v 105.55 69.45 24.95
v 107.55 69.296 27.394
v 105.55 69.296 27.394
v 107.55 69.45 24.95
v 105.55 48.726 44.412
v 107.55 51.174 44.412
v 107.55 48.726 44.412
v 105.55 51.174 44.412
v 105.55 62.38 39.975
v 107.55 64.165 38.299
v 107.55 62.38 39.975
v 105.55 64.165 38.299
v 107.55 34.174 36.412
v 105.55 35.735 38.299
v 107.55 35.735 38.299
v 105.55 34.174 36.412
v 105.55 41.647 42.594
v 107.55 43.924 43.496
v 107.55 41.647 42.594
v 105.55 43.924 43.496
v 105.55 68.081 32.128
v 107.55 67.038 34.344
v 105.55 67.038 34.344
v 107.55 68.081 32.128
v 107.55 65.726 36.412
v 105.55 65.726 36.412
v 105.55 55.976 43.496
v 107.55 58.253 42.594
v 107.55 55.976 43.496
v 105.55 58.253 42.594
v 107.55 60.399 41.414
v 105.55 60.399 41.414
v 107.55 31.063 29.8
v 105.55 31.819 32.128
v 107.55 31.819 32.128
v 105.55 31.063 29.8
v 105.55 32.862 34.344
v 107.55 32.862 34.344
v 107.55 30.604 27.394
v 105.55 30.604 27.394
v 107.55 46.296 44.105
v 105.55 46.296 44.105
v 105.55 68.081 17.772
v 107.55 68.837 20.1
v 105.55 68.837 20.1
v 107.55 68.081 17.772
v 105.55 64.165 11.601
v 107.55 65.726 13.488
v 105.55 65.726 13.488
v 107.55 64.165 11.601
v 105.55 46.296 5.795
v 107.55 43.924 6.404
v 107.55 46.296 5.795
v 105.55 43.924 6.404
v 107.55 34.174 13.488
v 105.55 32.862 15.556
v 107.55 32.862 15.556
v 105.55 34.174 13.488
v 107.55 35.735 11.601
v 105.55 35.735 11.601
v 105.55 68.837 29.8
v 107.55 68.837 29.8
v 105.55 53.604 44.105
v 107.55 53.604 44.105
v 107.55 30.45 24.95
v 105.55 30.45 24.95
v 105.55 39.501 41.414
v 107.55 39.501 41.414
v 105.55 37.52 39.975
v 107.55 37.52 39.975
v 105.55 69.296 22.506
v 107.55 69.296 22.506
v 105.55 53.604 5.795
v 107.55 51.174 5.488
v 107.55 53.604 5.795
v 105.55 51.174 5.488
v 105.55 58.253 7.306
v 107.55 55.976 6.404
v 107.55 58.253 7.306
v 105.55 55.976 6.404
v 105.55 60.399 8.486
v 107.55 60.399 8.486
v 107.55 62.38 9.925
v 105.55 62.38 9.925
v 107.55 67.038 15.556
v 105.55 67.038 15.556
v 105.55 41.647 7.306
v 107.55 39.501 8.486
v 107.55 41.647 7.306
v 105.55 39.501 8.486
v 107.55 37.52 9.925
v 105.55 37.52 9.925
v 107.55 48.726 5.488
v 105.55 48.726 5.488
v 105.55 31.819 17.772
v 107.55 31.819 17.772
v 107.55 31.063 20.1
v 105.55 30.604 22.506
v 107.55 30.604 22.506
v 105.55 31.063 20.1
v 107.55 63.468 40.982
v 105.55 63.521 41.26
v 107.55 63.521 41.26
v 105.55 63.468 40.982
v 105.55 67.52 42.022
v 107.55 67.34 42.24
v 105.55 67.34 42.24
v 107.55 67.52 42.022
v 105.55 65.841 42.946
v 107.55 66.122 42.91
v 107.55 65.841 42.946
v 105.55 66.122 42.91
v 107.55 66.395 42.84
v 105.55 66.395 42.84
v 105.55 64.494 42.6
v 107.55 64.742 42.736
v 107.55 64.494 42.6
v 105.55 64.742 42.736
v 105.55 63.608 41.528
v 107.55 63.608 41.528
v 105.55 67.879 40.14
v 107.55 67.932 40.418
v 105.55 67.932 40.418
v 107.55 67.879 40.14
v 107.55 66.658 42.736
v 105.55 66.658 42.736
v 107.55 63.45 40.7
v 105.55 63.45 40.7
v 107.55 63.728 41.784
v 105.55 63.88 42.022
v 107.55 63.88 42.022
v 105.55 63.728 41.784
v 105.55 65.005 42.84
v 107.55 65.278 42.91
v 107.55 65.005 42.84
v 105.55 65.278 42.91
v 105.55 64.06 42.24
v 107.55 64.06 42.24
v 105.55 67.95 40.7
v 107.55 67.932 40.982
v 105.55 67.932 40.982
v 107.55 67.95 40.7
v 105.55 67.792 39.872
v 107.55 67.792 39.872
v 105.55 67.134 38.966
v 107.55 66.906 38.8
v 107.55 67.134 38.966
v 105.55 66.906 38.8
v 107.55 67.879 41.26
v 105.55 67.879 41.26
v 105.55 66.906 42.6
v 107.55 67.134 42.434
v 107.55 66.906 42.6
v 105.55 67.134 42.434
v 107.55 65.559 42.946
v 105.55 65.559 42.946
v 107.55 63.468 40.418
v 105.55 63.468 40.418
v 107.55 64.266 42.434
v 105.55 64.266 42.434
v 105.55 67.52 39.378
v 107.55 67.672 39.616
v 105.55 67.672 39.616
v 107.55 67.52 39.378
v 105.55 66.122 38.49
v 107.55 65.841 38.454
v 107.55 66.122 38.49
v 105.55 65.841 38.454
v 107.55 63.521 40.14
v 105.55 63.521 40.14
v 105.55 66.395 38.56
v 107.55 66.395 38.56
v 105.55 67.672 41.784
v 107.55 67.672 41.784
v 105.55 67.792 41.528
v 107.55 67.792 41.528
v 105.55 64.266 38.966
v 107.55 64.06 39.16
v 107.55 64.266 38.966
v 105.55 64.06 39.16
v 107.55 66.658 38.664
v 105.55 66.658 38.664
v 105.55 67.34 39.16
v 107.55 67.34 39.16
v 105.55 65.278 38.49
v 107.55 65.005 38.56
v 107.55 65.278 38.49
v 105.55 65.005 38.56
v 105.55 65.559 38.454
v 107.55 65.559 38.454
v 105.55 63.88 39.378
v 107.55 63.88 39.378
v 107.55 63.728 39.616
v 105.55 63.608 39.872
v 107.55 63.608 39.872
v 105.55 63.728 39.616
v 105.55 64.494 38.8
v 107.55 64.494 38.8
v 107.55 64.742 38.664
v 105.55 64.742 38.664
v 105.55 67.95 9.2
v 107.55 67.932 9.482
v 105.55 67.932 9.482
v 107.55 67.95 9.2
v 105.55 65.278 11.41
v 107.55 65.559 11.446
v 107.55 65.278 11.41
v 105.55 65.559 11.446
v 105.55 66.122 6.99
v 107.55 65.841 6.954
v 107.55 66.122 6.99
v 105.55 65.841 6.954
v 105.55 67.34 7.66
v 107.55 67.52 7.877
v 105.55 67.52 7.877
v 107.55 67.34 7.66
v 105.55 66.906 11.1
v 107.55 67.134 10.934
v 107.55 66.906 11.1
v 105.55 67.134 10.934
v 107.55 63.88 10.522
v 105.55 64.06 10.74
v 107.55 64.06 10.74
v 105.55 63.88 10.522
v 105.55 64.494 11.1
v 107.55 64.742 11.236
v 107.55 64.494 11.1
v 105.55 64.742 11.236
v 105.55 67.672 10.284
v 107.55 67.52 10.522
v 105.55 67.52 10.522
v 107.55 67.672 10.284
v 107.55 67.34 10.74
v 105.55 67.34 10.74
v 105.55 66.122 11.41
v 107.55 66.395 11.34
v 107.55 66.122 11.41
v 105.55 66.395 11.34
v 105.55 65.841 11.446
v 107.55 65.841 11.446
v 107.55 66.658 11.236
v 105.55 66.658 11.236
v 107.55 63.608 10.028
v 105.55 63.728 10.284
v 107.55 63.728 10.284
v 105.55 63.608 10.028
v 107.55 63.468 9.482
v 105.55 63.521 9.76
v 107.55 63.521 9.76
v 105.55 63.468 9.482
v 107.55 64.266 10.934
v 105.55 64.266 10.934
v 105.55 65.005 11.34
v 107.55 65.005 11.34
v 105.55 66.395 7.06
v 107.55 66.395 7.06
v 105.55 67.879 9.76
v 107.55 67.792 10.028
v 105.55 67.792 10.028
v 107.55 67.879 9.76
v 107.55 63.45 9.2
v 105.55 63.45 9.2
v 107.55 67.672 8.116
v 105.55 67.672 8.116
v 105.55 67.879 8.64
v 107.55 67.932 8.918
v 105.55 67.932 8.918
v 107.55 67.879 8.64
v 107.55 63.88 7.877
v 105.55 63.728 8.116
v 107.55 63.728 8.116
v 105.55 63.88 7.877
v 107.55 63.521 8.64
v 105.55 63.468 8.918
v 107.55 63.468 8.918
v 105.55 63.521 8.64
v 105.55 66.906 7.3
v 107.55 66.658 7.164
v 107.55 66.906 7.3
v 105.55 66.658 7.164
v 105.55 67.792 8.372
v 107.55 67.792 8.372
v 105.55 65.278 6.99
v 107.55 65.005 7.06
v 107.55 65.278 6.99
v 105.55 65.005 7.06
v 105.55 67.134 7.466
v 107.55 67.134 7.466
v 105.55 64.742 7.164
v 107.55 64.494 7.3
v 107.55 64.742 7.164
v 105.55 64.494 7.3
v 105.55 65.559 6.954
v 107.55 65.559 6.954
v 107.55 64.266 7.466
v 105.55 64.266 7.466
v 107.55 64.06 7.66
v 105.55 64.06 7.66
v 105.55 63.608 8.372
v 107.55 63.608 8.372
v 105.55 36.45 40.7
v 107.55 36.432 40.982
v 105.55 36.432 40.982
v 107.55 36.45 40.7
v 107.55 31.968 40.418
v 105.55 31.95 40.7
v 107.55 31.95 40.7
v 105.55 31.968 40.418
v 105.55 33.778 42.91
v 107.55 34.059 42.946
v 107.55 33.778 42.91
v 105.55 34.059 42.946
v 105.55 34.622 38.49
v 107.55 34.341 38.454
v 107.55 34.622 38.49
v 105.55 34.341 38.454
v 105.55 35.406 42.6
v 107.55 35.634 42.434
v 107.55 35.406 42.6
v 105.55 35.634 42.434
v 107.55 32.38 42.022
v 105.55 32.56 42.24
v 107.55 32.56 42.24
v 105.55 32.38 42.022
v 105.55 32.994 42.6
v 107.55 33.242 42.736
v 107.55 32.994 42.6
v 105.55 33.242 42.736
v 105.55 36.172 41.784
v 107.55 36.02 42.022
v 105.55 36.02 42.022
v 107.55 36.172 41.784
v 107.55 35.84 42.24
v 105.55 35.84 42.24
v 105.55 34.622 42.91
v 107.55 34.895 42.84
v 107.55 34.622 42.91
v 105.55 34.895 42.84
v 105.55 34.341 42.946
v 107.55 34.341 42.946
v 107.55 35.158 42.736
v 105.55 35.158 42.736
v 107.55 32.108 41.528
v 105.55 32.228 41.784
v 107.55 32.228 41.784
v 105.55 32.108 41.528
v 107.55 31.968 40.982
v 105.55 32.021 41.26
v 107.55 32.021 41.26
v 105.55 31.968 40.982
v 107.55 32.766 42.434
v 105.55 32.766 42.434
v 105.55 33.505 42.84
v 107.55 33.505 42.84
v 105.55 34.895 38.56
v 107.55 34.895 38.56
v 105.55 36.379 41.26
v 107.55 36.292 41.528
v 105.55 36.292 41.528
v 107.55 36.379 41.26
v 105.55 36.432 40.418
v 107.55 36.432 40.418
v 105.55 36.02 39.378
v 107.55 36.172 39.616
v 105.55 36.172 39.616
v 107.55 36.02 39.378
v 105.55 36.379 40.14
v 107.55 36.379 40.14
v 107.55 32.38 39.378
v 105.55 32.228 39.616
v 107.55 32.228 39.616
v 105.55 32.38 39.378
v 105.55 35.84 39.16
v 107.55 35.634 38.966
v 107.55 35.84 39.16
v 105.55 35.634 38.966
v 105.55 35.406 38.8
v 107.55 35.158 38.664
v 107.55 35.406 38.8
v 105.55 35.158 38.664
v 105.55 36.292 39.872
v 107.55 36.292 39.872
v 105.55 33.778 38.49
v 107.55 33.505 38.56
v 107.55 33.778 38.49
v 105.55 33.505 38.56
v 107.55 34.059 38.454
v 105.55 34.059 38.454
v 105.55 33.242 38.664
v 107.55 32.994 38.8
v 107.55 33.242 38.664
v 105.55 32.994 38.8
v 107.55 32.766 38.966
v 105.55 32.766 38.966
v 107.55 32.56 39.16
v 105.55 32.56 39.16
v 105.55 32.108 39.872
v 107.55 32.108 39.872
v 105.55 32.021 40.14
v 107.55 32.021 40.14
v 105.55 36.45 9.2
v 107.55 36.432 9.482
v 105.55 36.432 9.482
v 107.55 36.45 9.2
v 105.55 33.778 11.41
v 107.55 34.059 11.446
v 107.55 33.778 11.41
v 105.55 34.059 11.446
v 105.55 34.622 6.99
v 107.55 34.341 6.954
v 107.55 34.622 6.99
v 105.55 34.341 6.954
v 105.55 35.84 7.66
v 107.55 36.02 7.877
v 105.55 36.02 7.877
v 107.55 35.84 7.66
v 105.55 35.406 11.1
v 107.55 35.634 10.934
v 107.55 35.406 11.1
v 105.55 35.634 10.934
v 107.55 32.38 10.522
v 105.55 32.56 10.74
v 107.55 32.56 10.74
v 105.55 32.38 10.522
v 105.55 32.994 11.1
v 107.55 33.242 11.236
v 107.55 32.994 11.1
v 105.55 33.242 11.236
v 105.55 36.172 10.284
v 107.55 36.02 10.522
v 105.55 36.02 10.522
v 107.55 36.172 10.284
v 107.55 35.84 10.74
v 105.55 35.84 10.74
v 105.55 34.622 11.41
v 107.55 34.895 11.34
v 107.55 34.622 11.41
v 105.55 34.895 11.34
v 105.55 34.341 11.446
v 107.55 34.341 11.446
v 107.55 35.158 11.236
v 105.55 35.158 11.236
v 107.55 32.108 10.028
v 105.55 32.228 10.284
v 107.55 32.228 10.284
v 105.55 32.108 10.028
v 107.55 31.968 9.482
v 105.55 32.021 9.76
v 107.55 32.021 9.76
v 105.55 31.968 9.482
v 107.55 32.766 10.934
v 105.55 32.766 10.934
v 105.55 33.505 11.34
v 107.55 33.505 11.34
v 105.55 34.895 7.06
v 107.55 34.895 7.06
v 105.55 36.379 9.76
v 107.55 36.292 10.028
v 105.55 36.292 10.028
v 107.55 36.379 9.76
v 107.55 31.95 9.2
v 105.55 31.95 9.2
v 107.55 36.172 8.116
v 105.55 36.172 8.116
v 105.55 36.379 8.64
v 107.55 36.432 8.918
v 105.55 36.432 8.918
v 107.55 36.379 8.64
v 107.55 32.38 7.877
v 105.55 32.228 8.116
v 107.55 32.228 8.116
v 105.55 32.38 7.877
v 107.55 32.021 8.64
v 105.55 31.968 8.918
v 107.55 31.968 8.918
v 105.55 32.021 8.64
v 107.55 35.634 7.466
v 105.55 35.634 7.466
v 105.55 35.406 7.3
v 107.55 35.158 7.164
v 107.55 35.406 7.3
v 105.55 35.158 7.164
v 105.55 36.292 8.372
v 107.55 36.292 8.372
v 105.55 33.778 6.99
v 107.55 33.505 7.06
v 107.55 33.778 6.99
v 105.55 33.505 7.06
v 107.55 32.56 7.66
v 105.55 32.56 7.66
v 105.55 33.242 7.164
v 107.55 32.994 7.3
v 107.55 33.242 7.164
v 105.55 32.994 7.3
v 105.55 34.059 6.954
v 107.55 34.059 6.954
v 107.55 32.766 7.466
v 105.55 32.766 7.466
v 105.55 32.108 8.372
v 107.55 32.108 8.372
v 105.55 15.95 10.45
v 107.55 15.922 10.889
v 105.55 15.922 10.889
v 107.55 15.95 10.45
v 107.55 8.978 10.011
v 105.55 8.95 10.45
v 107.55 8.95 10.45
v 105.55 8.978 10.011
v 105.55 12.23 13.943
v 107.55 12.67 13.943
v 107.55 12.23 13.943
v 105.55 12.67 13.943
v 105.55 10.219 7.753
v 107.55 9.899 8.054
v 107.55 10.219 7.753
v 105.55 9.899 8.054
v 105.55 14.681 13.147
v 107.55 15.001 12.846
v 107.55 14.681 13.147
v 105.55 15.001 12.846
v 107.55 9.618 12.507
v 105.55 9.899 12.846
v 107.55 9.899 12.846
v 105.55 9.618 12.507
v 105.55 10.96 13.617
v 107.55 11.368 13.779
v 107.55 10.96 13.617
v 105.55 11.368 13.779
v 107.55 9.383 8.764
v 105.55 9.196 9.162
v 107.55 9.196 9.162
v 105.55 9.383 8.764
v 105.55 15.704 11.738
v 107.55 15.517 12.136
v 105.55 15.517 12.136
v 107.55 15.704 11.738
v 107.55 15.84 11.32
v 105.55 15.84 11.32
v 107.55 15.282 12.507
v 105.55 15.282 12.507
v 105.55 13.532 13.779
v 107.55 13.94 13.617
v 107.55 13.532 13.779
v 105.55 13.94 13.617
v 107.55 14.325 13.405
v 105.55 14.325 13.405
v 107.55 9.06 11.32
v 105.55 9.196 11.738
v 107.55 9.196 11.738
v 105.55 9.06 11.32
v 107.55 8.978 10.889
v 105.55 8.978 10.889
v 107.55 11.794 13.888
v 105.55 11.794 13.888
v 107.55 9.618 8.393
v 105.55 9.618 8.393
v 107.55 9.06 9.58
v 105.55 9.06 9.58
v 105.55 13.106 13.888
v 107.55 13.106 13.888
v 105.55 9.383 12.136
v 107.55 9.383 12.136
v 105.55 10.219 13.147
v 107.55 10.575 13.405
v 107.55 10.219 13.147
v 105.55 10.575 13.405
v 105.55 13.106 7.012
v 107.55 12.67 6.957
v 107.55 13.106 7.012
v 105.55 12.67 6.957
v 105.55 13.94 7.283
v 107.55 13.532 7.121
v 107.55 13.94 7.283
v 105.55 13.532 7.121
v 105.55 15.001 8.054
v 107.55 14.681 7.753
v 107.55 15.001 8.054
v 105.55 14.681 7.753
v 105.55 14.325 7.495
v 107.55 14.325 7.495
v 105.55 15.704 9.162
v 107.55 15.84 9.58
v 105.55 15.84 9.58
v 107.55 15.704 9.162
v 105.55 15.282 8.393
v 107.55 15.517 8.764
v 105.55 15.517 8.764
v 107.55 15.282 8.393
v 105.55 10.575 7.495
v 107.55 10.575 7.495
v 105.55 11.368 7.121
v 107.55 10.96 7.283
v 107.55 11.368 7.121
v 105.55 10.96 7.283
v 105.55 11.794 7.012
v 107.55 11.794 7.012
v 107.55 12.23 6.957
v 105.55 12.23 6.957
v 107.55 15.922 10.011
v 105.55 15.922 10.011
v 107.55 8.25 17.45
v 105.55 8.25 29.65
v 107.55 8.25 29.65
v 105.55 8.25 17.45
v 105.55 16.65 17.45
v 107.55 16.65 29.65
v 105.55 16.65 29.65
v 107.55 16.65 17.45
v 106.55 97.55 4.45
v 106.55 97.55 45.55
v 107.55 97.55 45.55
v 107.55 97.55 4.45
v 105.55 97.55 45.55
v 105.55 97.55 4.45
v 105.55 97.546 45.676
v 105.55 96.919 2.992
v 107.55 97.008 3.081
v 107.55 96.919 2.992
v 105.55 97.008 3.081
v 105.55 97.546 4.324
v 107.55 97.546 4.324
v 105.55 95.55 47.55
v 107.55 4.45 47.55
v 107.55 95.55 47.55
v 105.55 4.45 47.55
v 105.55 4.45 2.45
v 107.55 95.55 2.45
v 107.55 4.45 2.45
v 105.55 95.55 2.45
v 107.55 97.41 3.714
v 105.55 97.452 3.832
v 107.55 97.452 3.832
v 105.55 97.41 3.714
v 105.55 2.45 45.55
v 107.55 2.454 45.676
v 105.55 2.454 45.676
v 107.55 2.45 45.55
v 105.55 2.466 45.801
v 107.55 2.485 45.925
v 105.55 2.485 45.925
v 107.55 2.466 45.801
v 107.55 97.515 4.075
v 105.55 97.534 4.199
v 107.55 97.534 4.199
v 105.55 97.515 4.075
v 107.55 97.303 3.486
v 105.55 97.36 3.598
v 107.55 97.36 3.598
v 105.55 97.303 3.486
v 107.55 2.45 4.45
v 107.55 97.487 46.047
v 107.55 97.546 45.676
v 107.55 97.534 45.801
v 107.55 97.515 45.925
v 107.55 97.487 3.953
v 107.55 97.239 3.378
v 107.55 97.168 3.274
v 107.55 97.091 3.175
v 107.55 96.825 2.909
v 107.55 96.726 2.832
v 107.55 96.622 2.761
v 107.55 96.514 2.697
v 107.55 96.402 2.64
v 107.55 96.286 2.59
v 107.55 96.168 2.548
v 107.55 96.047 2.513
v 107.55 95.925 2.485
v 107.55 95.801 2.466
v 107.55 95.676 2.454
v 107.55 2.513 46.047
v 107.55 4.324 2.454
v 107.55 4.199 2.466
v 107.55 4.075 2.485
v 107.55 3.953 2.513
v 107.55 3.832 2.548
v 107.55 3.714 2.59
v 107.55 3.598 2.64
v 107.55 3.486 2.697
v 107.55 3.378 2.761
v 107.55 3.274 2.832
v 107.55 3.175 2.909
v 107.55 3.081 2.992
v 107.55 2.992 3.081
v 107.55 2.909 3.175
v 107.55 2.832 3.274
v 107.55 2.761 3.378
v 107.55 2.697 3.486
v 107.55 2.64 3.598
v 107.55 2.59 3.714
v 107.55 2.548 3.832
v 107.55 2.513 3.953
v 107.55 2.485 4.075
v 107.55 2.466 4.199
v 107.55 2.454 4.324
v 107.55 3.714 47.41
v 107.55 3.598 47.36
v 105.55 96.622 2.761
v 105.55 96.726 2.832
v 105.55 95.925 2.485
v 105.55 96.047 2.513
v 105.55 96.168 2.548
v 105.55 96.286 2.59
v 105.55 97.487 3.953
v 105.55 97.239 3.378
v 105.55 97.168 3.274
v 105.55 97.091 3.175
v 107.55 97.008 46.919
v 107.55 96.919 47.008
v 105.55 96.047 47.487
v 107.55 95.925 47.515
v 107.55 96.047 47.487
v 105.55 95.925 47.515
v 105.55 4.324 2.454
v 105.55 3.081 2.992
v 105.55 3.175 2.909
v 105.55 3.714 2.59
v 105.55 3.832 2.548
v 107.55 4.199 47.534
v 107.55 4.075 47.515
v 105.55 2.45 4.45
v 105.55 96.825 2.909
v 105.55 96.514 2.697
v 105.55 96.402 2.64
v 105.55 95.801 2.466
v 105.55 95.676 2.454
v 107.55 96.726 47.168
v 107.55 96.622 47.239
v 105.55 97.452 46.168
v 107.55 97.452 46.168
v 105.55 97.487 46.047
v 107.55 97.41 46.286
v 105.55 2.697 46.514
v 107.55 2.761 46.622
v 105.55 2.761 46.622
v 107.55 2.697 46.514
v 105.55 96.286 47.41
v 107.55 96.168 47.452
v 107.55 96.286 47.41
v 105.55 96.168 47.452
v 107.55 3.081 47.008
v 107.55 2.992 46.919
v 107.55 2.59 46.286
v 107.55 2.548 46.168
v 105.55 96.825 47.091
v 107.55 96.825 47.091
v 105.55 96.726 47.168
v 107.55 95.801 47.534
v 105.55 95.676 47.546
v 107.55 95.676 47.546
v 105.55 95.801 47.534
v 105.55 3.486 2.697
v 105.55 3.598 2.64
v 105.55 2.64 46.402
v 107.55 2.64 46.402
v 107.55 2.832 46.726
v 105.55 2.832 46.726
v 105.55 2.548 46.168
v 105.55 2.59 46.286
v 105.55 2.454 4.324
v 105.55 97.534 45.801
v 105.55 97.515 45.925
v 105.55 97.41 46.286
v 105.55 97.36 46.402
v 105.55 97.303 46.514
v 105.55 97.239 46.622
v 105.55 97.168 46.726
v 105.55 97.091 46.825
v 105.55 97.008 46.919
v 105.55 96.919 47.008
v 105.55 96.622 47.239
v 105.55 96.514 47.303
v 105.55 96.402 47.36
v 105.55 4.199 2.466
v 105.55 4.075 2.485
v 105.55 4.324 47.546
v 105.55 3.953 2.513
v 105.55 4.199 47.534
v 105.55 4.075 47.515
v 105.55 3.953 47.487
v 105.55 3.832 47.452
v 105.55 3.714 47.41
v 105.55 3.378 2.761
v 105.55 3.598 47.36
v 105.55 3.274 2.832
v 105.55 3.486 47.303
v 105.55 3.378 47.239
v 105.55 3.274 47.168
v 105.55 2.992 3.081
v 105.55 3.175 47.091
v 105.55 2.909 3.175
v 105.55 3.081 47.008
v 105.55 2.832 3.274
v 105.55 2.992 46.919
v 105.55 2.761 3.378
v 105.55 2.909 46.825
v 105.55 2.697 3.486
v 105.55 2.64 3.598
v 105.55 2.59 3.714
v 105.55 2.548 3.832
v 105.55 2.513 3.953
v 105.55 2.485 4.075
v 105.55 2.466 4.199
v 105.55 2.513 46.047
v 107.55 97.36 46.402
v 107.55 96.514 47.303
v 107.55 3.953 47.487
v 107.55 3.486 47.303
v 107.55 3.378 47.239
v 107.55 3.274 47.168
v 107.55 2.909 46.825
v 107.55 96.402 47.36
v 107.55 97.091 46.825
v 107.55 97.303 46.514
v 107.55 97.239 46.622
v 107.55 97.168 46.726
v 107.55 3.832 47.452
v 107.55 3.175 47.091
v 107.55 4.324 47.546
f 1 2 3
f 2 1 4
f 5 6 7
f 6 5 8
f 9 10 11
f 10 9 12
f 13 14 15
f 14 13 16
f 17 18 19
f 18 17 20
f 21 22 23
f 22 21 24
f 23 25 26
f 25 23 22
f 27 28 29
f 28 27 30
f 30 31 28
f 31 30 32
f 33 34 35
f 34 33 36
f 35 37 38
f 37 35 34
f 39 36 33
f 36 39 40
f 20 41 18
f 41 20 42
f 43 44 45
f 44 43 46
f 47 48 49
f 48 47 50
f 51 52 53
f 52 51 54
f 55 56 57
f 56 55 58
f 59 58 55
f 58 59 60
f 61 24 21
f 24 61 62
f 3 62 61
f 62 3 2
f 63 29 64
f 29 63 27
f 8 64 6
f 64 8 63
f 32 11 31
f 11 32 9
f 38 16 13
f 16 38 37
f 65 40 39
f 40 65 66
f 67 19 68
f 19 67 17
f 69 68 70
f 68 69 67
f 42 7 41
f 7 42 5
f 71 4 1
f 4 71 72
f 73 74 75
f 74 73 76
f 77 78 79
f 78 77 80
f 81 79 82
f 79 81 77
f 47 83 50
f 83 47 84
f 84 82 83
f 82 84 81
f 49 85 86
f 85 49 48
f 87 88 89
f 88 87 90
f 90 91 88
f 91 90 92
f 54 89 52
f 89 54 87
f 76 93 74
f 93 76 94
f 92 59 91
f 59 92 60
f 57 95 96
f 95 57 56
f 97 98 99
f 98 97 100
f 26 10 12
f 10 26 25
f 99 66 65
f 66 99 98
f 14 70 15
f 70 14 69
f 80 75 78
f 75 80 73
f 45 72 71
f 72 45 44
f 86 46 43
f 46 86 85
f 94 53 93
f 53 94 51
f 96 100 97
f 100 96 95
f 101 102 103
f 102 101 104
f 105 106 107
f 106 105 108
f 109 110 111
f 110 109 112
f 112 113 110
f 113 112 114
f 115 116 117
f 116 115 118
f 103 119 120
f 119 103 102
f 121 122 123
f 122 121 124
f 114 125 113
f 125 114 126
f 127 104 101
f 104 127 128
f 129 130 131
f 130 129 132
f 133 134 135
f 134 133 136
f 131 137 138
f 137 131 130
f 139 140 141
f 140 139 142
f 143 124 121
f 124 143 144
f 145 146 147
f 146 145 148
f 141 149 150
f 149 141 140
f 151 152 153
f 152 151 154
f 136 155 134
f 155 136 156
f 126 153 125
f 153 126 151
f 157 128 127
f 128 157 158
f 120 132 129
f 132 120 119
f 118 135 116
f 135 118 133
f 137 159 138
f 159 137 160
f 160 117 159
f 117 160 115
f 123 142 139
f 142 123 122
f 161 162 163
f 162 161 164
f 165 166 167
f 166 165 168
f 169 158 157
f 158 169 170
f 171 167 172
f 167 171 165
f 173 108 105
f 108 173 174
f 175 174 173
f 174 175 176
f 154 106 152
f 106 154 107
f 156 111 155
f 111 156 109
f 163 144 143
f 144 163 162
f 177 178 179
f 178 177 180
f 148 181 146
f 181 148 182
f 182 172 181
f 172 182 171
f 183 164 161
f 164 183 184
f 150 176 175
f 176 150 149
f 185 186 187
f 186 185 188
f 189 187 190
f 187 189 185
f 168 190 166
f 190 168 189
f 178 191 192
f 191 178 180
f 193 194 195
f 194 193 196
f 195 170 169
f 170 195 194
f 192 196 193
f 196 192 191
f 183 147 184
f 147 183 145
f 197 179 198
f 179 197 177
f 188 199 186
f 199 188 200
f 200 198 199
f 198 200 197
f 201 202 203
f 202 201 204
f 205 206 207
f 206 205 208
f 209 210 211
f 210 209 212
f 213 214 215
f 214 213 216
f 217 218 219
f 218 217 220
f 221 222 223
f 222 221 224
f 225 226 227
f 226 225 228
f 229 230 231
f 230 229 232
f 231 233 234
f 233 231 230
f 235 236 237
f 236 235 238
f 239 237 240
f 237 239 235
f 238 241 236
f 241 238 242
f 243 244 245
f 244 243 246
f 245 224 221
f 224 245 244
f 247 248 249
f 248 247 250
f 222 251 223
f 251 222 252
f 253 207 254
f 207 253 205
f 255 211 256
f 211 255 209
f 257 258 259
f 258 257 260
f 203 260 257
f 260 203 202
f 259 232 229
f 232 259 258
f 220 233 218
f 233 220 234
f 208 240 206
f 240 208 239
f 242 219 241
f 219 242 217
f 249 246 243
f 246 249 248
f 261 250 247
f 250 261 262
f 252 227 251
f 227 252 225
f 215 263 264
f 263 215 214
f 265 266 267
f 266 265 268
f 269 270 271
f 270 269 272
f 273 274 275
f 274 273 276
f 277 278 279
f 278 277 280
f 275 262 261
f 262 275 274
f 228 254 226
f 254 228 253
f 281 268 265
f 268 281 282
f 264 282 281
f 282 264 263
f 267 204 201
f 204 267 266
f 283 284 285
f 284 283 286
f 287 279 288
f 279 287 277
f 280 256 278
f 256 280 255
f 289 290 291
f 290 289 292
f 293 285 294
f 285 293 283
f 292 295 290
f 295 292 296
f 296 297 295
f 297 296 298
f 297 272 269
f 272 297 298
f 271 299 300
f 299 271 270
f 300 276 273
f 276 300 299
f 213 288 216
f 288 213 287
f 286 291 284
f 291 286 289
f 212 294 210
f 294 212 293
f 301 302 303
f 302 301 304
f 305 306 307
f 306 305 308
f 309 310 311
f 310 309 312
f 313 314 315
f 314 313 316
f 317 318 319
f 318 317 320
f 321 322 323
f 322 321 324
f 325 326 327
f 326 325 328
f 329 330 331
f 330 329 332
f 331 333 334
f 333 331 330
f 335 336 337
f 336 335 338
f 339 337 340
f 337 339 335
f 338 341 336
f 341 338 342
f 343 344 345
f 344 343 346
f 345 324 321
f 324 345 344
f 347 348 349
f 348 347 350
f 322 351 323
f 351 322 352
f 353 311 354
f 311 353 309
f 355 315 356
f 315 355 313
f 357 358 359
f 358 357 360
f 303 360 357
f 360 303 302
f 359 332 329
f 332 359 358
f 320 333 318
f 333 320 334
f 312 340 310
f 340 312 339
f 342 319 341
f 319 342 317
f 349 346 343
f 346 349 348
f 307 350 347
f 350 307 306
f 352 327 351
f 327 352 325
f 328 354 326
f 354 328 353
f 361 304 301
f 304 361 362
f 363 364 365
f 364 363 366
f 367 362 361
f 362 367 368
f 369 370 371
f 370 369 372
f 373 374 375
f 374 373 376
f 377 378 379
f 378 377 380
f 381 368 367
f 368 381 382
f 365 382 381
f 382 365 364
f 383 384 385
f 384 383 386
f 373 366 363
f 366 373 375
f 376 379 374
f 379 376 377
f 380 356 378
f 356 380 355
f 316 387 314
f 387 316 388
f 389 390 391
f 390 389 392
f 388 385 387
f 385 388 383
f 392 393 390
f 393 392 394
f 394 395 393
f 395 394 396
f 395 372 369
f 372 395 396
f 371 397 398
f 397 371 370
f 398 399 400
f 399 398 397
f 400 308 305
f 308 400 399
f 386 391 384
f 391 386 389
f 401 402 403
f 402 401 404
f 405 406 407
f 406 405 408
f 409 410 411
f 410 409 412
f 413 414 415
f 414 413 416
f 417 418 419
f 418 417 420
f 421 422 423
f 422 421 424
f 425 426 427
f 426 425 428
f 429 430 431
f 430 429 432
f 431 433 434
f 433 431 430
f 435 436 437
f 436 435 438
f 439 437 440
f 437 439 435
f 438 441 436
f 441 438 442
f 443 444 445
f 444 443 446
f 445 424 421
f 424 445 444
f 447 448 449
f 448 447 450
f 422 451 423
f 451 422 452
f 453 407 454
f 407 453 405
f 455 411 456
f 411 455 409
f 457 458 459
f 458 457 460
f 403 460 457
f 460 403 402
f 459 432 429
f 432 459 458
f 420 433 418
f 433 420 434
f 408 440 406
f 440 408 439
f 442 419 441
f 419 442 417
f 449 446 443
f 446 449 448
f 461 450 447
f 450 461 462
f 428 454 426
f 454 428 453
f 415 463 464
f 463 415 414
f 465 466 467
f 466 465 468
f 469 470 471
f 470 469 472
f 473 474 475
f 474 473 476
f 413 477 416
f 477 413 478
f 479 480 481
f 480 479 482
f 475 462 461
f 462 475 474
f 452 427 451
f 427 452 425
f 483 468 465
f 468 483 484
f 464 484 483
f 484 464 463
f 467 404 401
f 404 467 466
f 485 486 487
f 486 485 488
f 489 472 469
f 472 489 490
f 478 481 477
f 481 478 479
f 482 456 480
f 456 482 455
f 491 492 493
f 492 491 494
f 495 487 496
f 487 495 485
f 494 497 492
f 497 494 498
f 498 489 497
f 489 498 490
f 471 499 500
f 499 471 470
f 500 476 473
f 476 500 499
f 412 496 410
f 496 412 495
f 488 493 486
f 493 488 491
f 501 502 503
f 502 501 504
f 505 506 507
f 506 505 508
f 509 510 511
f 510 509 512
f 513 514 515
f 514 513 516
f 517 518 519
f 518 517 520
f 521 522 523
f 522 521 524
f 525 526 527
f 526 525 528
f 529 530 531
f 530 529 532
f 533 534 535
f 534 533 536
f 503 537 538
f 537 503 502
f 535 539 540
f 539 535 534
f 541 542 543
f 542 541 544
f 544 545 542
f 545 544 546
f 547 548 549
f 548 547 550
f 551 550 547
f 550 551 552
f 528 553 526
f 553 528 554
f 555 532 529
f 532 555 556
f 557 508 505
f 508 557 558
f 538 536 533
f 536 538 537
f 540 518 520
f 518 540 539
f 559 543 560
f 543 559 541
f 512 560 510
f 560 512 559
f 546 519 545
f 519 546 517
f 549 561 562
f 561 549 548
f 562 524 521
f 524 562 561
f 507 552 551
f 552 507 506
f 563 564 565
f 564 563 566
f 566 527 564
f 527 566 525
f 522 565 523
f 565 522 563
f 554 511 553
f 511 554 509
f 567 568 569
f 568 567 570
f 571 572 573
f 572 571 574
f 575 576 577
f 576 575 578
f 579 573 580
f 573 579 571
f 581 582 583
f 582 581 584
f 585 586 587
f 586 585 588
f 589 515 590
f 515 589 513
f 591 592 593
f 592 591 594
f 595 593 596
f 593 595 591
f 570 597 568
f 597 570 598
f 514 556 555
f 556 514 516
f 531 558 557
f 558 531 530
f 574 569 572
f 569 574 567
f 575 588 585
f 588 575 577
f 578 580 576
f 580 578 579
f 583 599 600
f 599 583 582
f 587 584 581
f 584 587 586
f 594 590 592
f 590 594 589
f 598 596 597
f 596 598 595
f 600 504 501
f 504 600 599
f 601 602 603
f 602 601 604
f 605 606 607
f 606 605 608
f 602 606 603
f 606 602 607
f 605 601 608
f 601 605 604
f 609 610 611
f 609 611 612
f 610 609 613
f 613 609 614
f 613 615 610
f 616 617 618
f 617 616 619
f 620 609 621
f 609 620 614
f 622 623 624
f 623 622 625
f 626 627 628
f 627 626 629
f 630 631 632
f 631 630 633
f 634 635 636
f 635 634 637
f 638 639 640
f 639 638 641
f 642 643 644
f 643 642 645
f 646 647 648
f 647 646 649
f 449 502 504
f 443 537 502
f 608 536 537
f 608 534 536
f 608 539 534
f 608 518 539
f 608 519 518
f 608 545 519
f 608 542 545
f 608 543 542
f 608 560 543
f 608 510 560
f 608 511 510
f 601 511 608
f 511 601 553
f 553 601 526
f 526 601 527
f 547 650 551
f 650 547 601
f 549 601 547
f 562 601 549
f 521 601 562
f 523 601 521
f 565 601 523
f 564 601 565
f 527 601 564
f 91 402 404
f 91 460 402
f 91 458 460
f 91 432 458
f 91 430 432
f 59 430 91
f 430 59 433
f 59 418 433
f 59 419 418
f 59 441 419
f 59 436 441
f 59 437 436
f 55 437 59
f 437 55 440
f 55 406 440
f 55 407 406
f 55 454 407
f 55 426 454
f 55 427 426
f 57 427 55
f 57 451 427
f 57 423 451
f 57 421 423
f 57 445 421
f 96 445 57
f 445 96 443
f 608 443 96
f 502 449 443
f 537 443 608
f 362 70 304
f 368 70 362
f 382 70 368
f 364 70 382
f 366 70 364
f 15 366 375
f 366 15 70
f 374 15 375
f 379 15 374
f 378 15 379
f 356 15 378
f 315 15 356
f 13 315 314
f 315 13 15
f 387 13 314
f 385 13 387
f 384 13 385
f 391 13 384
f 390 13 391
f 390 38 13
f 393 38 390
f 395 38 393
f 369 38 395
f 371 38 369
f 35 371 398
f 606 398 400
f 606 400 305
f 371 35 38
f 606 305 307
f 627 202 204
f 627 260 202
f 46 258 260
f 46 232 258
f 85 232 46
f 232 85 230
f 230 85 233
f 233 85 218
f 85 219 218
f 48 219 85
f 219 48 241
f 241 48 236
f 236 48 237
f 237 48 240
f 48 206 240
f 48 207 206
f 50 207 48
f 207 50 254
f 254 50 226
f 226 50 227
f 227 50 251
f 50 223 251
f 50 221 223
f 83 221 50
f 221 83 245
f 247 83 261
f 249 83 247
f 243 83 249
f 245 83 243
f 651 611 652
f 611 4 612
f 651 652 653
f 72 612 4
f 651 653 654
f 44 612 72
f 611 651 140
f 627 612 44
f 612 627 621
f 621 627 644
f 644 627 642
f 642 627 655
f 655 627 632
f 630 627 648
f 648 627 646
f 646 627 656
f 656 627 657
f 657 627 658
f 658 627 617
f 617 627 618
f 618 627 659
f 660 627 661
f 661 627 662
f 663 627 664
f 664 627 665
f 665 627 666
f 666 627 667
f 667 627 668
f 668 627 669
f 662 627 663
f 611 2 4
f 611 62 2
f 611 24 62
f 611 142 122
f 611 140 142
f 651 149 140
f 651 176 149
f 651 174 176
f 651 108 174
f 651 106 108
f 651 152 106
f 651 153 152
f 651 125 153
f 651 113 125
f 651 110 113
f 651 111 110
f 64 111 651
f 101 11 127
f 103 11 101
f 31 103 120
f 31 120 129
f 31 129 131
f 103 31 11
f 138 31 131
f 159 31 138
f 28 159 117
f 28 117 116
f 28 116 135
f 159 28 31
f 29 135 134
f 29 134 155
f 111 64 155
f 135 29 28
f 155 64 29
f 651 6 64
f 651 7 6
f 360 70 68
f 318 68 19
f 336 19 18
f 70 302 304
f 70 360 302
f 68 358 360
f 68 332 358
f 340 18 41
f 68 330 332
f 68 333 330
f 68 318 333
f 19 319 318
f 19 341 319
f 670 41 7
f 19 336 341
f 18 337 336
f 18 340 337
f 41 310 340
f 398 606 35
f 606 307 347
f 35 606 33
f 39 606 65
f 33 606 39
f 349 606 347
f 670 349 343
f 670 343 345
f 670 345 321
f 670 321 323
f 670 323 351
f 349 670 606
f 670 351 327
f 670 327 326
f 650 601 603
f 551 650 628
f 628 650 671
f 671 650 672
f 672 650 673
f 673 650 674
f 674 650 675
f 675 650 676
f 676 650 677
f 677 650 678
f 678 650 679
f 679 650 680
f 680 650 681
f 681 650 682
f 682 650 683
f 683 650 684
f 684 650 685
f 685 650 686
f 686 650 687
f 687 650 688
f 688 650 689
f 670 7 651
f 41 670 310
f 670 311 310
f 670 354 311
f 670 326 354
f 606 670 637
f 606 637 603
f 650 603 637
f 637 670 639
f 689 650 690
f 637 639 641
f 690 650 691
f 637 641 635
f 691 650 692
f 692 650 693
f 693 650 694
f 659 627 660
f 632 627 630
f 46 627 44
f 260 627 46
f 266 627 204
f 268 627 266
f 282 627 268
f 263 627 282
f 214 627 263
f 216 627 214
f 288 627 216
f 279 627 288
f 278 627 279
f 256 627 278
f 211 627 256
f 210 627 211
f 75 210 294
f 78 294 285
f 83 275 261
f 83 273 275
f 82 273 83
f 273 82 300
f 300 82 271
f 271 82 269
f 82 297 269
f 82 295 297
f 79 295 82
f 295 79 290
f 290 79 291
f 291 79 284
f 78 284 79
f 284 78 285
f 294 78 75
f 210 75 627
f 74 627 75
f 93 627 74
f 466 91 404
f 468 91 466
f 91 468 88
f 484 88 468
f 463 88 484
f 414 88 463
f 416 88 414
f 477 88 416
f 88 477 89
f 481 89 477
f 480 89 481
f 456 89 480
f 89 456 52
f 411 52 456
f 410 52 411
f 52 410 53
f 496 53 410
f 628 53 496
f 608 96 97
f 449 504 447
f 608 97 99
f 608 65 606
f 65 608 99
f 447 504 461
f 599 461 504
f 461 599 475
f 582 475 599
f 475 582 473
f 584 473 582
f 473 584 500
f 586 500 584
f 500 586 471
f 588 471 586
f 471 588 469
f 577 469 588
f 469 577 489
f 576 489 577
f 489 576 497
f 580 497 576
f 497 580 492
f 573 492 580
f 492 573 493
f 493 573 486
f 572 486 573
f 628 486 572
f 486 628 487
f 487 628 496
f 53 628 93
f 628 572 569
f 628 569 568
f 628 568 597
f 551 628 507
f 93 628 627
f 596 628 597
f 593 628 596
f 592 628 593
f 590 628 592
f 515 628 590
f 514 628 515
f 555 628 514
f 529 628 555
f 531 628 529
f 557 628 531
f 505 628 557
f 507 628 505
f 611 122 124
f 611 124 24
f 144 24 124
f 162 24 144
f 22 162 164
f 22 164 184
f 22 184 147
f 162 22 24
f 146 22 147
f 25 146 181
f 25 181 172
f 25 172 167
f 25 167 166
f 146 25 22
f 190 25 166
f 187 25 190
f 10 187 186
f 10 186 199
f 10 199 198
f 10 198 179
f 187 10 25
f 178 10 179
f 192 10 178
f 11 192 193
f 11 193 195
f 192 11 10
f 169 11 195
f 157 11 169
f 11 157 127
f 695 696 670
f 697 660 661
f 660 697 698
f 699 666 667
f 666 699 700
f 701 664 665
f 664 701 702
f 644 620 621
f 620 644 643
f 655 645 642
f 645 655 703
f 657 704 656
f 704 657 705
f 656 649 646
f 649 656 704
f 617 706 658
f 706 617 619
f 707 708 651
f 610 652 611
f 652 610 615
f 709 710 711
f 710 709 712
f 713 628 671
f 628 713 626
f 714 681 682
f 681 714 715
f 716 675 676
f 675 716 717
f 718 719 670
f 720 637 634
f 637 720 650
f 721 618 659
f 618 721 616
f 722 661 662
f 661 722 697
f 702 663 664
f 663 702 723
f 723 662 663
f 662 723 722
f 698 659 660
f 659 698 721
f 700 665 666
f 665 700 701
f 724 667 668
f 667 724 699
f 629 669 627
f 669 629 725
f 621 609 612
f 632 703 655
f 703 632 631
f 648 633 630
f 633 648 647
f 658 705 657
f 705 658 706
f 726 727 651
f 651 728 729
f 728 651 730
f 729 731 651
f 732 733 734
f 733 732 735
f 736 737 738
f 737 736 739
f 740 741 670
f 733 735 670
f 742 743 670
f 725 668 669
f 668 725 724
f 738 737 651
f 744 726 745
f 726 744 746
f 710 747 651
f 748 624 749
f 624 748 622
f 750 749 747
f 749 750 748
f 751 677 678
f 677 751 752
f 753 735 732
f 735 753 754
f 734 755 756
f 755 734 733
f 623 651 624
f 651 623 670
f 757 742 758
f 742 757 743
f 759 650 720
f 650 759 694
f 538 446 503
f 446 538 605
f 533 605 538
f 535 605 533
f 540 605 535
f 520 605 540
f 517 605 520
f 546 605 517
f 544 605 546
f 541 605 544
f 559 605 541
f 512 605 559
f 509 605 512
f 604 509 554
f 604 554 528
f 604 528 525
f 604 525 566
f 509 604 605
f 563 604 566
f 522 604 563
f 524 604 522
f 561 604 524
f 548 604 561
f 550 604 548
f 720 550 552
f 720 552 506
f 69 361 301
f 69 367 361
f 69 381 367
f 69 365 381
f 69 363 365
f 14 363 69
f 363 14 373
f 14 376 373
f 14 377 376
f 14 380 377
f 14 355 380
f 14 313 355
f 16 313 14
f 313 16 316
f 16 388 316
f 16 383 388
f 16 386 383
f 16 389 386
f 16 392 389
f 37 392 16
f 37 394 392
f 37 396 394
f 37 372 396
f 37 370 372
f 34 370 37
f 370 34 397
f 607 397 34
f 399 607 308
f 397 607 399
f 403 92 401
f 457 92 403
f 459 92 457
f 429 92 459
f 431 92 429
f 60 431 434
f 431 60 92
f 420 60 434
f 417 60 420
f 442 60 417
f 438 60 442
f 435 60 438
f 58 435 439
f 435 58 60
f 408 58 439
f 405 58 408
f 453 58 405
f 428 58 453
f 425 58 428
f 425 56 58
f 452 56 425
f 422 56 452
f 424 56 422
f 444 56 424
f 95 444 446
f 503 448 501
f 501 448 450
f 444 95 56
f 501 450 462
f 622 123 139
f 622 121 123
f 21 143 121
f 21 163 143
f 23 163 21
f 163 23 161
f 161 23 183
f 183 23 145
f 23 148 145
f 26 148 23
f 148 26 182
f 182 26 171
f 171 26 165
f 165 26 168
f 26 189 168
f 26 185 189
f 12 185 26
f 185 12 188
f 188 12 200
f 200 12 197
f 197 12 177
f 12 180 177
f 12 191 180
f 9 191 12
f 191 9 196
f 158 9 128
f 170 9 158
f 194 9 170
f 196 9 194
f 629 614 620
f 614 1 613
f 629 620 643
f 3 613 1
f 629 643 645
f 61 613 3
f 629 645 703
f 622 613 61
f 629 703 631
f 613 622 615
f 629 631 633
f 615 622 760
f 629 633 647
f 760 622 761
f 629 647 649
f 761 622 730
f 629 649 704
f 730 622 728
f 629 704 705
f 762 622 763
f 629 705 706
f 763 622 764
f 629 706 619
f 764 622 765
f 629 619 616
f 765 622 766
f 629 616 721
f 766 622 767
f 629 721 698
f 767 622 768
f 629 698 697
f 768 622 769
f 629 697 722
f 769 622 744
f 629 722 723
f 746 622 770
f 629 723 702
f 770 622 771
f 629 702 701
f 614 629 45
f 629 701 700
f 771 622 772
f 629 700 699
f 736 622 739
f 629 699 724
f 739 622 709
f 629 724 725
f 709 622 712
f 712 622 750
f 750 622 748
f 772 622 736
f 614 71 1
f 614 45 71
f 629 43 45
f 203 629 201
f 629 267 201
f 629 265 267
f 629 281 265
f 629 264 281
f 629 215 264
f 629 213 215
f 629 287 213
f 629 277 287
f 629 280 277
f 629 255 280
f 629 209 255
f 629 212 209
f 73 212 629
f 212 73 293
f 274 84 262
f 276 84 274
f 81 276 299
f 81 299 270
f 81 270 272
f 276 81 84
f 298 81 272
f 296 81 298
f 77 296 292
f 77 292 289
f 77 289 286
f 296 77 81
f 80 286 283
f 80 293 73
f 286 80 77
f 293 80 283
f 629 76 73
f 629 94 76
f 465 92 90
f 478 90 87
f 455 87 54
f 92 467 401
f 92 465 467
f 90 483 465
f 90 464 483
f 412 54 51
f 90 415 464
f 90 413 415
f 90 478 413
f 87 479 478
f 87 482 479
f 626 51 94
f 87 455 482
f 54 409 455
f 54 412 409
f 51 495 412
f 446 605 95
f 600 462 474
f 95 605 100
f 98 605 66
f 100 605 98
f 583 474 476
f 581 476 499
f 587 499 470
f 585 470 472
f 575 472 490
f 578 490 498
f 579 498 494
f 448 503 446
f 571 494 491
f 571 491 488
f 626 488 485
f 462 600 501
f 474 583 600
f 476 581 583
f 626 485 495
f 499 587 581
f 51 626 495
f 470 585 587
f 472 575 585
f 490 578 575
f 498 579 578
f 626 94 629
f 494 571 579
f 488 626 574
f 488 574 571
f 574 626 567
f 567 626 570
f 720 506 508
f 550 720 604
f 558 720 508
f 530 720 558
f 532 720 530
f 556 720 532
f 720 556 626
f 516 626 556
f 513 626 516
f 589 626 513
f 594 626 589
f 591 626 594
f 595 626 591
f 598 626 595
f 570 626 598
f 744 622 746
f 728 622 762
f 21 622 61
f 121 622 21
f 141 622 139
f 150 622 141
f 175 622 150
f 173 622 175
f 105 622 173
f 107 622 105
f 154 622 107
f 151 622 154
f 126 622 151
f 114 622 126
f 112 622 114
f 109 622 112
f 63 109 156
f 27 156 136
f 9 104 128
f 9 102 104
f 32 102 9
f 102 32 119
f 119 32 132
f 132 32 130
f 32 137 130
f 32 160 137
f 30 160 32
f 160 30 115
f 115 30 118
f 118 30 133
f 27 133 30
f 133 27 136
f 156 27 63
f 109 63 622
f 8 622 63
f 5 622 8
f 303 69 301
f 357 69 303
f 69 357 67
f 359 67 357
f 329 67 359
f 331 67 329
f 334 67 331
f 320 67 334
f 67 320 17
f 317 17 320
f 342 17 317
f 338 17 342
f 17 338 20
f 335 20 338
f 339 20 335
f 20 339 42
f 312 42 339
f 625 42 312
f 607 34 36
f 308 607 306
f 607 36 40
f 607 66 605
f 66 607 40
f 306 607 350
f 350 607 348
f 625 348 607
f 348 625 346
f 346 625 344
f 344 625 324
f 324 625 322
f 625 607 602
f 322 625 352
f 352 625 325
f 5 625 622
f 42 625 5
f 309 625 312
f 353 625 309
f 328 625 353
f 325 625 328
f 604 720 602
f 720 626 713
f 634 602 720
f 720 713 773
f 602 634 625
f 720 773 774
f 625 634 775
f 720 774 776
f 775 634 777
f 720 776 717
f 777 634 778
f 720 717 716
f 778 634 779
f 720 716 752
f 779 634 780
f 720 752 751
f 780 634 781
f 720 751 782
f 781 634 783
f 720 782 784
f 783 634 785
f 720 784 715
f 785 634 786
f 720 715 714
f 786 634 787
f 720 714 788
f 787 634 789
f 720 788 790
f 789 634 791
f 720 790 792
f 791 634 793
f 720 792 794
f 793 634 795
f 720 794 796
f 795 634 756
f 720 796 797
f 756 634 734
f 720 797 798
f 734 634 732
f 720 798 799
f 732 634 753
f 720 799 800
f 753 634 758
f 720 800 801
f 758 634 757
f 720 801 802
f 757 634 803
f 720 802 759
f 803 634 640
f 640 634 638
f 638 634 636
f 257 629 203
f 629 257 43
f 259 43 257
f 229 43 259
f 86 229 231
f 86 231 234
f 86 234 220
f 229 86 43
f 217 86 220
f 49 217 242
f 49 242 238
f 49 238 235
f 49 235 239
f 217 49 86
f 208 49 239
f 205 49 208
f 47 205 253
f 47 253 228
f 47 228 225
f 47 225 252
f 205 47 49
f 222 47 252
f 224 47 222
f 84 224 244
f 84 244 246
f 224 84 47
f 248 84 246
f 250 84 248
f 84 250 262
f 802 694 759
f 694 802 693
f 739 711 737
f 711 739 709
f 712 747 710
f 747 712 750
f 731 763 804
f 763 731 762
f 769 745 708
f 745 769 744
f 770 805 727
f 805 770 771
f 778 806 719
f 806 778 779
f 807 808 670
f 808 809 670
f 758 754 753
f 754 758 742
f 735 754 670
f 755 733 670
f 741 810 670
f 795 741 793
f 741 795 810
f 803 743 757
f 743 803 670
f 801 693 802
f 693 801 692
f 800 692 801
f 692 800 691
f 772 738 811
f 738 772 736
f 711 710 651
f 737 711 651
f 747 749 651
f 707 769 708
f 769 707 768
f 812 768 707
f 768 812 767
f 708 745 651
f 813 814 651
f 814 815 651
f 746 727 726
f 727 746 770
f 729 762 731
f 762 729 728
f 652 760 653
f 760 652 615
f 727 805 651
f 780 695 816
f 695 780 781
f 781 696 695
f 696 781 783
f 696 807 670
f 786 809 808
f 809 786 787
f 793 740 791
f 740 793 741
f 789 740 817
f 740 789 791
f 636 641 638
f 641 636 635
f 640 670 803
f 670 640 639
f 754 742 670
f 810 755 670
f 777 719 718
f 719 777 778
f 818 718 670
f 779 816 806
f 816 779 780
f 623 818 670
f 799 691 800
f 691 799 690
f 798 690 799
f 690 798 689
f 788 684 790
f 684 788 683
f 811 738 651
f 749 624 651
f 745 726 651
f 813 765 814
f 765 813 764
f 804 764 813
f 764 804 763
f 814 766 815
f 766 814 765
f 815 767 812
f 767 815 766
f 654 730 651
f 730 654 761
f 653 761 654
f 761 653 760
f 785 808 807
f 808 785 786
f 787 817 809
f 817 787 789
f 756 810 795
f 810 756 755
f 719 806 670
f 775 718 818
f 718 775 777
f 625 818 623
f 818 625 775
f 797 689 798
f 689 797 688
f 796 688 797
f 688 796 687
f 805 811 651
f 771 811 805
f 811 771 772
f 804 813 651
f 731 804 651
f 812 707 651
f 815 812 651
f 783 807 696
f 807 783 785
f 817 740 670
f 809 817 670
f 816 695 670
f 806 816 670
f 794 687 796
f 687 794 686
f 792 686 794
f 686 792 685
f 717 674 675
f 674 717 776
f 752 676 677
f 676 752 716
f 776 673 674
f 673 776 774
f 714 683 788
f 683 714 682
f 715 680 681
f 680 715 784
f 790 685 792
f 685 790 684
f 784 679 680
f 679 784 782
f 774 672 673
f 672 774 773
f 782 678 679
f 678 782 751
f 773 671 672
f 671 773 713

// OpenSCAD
/*//////////////////////////////////////////////////////////////////
              -    FB Aka Heartman/Hearty 2016     -                   
              -   http://heartygfx.blogspot.com    -                  
              -       OpenScad Parametric Box      -                     
              -         CC BY-NC 3.0 License       -                      
////////////////////////////////////////////////////////////////////                                                                                                             
12/02/2016 - Fixed minor bug 
28/02/2016 - Added holes ventilation option                    
09/03/2016 - Added PCB feet support, fixed the shell artefact on export mode. 

*/////////////////////////// - Info - //////////////////////////////

// All coordinates are starting as integrated circuit pins.
// From the top view :

//   CoordD           <---       CoordC
//                                 ^
//                                 ^
//                                 ^
//   CoordA           --->       CoordB


////////////////////////////////////////////////////////////////////


////////// - Paramètres de la boite - Box parameters - /////////////

/* [Box dimensions] */
// - Longueur - Length  
  Length        = 110;       
// - Largeur - Width
  Width         = 100;                     
// - Hauteur - Height  
  Height        = 50;  
// - Epaisseur - Wall thickness  
  Thick         = 2;//[2:5]  
  
/* [Box options] */
// - Diamètre Coin arrondi - Filet diameter  
  Filet         = 2;//[0.1:12] 
// - lissage de l'arrondi - Filet smoothness  
  Resolution    = 50;//[1:100] 
// - Tolérance - Tolerance (Panel/rails gap)
  m             = 0.9;
// Pieds PCB - PCB feet (x4) 
  PCBFeet       = 0;// [0:No, 1:Yes]
// - Decorations to ventilation holes
  Vent          = 1;// [0:No, 1:Yes]
// - Decoration-Holes width (in mm)
  Vent_width    = 1.5;   


  
/* [PCB_Feet] */
//All dimensions are from the center foot axis

// - Coin bas gauche - Low left corner X position
PCBPosX         = 7;
// - Coin bas gauche - Low left corner Y position
PCBPosY         = 6;
// - Longueur PCB - PCB Length
PCBLength       = 90;
// - Largeur PCB - PCB Width
PCBWidth        = 90;
// - Heuteur pied - Feet height
FootHeight      = 17.7;
// - Diamètre pied - Foot diameter
FootDia         = 8;
// - Diamètre trou - Hole diameter
FootHole        = 3;  
  

/* [STL element to export] */
//Coque haut - Top shell
TShell          = 0;// [0:No, 1:Yes]
//Coque bas- Bottom shell
BShell          = 0;// [0:No, 1:Yes]
//Panneau avant - Front panel
FPanL           = 1;// [0:No, 1:Yes]
//Panneau arrière - Back panel  
BPanL           = 0;// [0:No, 1:Yes]


  
/* [Hidden] */
// - Couleur coque - Shell color  
Couleur1        = "Orange";       
// - Couleur panneaux - Panels color    
Couleur2        = "OrangeRed";    
// Thick X 2 - making decorations thicker if it is a vent to make sure they go through shell
Dec_Thick       = Vent ? Thick*2 : Thick; 
// - Depth decoration
Dec_size        = Vent ? Thick*2 : 0.8;





/////////// - Boitier générique bord arrondis - Generic rounded box - //////////

module RoundBox($a=Length, $b=Width, $c=Height){// Cube bords arrondis
                    $fn=Resolution;            
                    translate([0,Filet,Filet]){  
                    minkowski (){                                              
                        cube ([$a-(Length/2),$b-(2*Filet),$c-(2*Filet)], center = false);
                        rotate([0,90,0]){    
                        cylinder(r=Filet,h=Length/2, center = false);
                            } 
                        }
                    }
                }// End of RoundBox Module

      
////////////////////////////////// - Module Coque/Shell - //////////////////////////////////         

module Coque(){//Coque - Shell  
    Thick = Thick*2;  
    difference(){    
        difference(){//sides decoration
            union(){    
                     difference() {//soustraction de la forme centrale - Substraction Fileted box
                      
                        difference(){//soustraction cube median - Median cube slicer
                            union() {//union               
                            difference(){//Coque    
                                RoundBox();
                                translate([Thick/2,Thick/2,Thick/2]){     
                                        RoundBox($a=Length-Thick, $b=Width-Thick, $c=Height-Thick);
                                        }
                                        }//Fin diff Coque                            
                                difference(){//largeur Rails        
                                     translate([Thick+m,Thick/2,Thick/2]){// Rails
                                          RoundBox($a=Length-((2*Thick)+(2*m)), $b=Width-Thick, $c=Height-(Thick*2));
                                                          }//fin Rails
                                     translate([((Thick+m/2)*1.55),Thick/2,Thick/2+0.1]){ // +0.1 added to avoid the artefact
                                          RoundBox($a=Length-((Thick*3)+2*m), $b=Width-Thick, $c=Height-Thick);
                                                    }           
                                                }//Fin largeur Rails
                                    }//Fin union                                   
                               translate([-Thick,-Thick,Height/2]){// Cube à soustraire
                                    cube ([Length+100, Width+100, Height], center=false);
                                            }                                            
                                      }//fin soustraction cube median - End Median cube slicer
                               translate([-Thick/2,Thick,Thick]){// Forme de soustraction centrale 
                                    RoundBox($a=Length+Thick, $b=Width-Thick*2, $c=Height-Thick);       
                                    }                          
                                }                                          


                difference(){// wall fixation box legs
                    union(){
                        translate([3*Thick +5,Thick,Height/2]){
                            rotate([90,0,0]){
                                    $fn=6;
                                    cylinder(d=16,Thick/2);
                                    }   
                            }
                            
                       translate([Length-((3*Thick)+5),Thick,Height/2]){
                            rotate([90,0,0]){
                                    $fn=6;
                                    cylinder(d=16,Thick/2);
                                    }   
                            }

                        }
                            translate([4,Thick+Filet,Height/2-57]){   
                             rotate([45,0,0]){
                                   cube([Length,40,40]);    
                                  }
                           }
                           translate([0,-(Thick*1.46),Height/2]){
                                cube([Length,Thick*2,10]);
                           }
                    } //Fin fixation box legs
            }

        union(){// outbox sides decorations
            
            for(i=[0:Thick:Length/4]){

                // Ventilation holes part code submitted by Ettie - Thanks ;) 
                    translate([10+i,-Dec_Thick+Dec_size,1]){
                    cube([Vent_width,Dec_Thick,Height/4]);
                    }
                    translate([(Length-10) - i,-Dec_Thick+Dec_size,1]){
                    cube([Vent_width,Dec_Thick,Height/4]);
                    }
                    translate([(Length-10) - i,Width-Dec_size,1]){
                    cube([Vent_width,Dec_Thick,Height/4]);
                    }
                    translate([10+i,Width-Dec_size,1]){
                    cube([Vent_width,Dec_Thick,Height/4]);
                    }
  
                
                    }// fin de for
               // }
                }//fin union decoration
            }//fin difference decoration


            union(){ //sides holes
                $fn=50;
                translate([3*Thick+5,20,Height/2+4]){
                    rotate([90,0,0]){
                    cylinder(d=2,20);
                    }
                }
                translate([Length-((3*Thick)+5),20,Height/2+4]){
                    rotate([90,0,0]){
                    cylinder(d=2,20);
                    }
                }
                translate([3*Thick+5,Width+5,Height/2-4]){
                    rotate([90,0,0]){
                    cylinder(d=2,20);
                    }
                }
                translate([Length-((3*Thick)+5),Width+5,Height/2-4]){
                    rotate([90,0,0]){
                    cylinder(d=2,20);
                    }
                }
            }//fin de sides holes

        }//fin de difference holes
}// fin coque 

////////////////////////////// - Experiment - ///////////////////////////////////////////





/////////////////////// - Foot with base filet - /////////////////////////////
module foot(FootDia,FootHole,FootHeight){
    Filet=2;
    color(Couleur1)   
    translate([0,0,Filet-1.5])
    difference(){
    
    difference(){
            //translate ([0,0,-Thick]){
                cylinder(d=FootDia+Filet,FootHeight-Thick, $fn=100);
                        //}
                    rotate_extrude($fn=100){
                            translate([(FootDia+Filet*2)/2,Filet,0]){
                                    minkowski(){
                                            square(10);
                                            circle(Filet, $fn=100);
                                        }
                                 }
                           }
                   }
            cylinder(d=FootHole,FootHeight+1, $fn=100);
               }          
}// Fin module foot
  
module Feet(){     
//////////////////// - PCB only visible in the preview mode - /////////////////////    
    translate([3*Thick+2,Thick+5,FootHeight+(Thick/2)-0.5]){
    
    %square ([PCBLength+10,PCBWidth+10]);
       translate([PCBLength/2,PCBWidth/2,0.5]){ 
        color("Olive")
        %text("PCB", halign="center", valign="center", font="Arial black");
       }
    } // Fin PCB 
  
    
////////////////////////////// - 4 Feet - //////////////////////////////////////////     
    translate([3*Thick+7,Thick+10,Thick/2]){
        foot(FootDia,FootHole,FootHeight);
    }
    translate([(3*Thick)+PCBLength+7,Thick+10,Thick/2]){
        foot(FootDia,FootHole,FootHeight);
        }
    translate([(3*Thick)+PCBLength+7,(Thick)+PCBWidth+10,Thick/2]){
        foot(FootDia,FootHole,FootHeight);
        }        
    translate([3*Thick+7,(Thick)+PCBWidth+10,Thick/2]){
        foot(FootDia,FootHole,FootHeight);
    }   

} // Fin du module Feet
 


 
 ////////////////////////////////////////////////////////////////////////
////////////////////// <- Holes Panel Manager -> ///////////////////////
////////////////////////////////////////////////////////////////////////

//                           <- Panel ->  
module Panel(Length,Width,Thick,Filet){
    scale([0.5,1,1])
    minkowski(){
            cube([Thick,Width-(Thick*2+Filet*2+m),Height-(Thick*2+Filet*2+m)]);
            translate([0,Filet,Filet])
            rotate([0,90,0])
            cylinder(r=Filet,h=Thick, $fn=100);
      }
}



//                          <- Circle hole -> 
// Cx=Cylinder X position | Cy=Cylinder Y position | Cdia= Cylinder dia | Cheight=Cyl height
module CylinderHole(OnOff,Cx,Cy,Cdia){
    if(OnOff==1)
    translate([Cx,Cy,-1])
        cylinder(d=Cdia,10, $fn=50);
}
//                          <- Square hole ->  
// Sx=Square X position | Sy=Square Y position | Sl= Square Length | Sw=Square Width | Filet = Round corner
module SquareHole(OnOff,Sx,Sy,Sl,Sw,Filet){
    if(OnOff==1)
     minkowski(){
        translate([Sx+Filet/2,Sy+Filet/2,-1])
            cube([Sl-Filet,Sw-Filet,10]);
            cylinder(d=Filet,h=10, $fn=100);
       }
}


 
//                      <- Linear text panel -> 
module LText(OnOff,Tx,Ty,Font,Size,Content){
    if(OnOff==1)
    translate([Tx,Ty,Thick+.5])
    linear_extrude(height = 0.5){
    text(Content, size=Size, font=Font);
    }
}
//                     <- Circular text panel->  
module CText(OnOff,Tx,Ty,Font,Size,TxtRadius,Angl,Turn,Content){ 
      if(OnOff==1) {
      Angle = -Angl / len(Content);
      translate([Tx,Ty,Thick+.5])
          for (i= [0:len(Content)-1] ){   
              rotate([0,0,i*Angle+90+Turn])
              translate([0,TxtRadius,0]) {
                linear_extrude(height = 0.5){
                text(Content[i], font = Font, size = Size,  valign ="baseline", halign ="center");
                    }
                }   
             }
      }
}
////////////////////// <- New module Panel -> //////////////////////
module FPanL(){
    difference(){
        color(Couleur2)
        Panel(Length,Width,Thick,Filet);
    
 
    rotate([90,0,90]){
        color(Couleur2){
//                     <- Cutting shapes from here ->  
        x1=95/2; y1=22.5;
//        x2=73; y2=22.5;
        d=15.75;
        // The two fan holes
        CylinderHole(1,x1,y1,39);
//        CylinderHole(1,x2,y2,39);
        // Mounting holes 1
        CylinderHole(1,x1+d,y1+d, 4.5);
        CylinderHole(1,x1+d,y1-d, 4.5);
        CylinderHole(1,x1-d,y1+d, 4.5);
        CylinderHole(1,x1-d,y1-d, 4.5);
        // Mounting holes 2
//        CylinderHole(1,x2+d,y2+d, 4.5);
//        CylinderHole(1,x2+d,y2-d, 4.5);
//        CylinderHole(1,x2-d,y2+d, 4.5);
//        CylinderHole(1,x2-d,y2-d, 4.5);
            
        //Power Jack d1=7mm d2=11mm
        CylinderHole(1,10,2.5+11/2,7);
        //Switch 12.1*8.4
        SquareHole(1, 10-4.2, 15, 8.4, 12.2, 0);
            //20-4.25=15.75
        
        //(On/Off, Xpos, Ypos, Diameter)
//                            <- To here -> 
           }
       }
}

    color(Couleur1){
        translate ([-.5,0,0])
        rotate([90,0,90]){
//                      <- Adding text from here ->          
        //LText(1,2,39,"Arial Black",4,"Mini PSU");
        //LText(1,61,39,"Arial Black",4,"git.io/vyzrv");//(On/Off, Xpos, Ypos, "Font", Size, "Text")
//                            <- To here ->
            }
      }
}


/////////////////////////// <- Main part -> /////////////////////////

if(TShell==1)
// Coque haut - Top Shell
        color( Couleur1,1){
            translate([0,Width,Height+0.2]){
                rotate([0,180,180]){
                        Coque();
                        }
                }
        }

if(BShell==1)
// Coque bas - Bottom shell
        color(Couleur1){ 
        Coque();
        }

// Pied support PCB - PCB feet
if (PCBFeet==1)
// Feet
        translate([PCBPosX,PCBPosY,0]){ 
        Feet();
        }

// Panneau avant - Front panel  <<<<<< Text and holes only on this one.
//rotate([0,-90,-90]) 
if(FPanL==1)
        translate([Length-(Thick*2+m/2),Thick+m/2,Thick+m/2])
        FPanL();

//Panneau arrière - Back panel
if(BPanL==1)
        color(Couleur2)
        translate([Thick+m/2,Thick+m/2,Thick+m/2])
        Panel(Length,Width,Thick,Filet);
